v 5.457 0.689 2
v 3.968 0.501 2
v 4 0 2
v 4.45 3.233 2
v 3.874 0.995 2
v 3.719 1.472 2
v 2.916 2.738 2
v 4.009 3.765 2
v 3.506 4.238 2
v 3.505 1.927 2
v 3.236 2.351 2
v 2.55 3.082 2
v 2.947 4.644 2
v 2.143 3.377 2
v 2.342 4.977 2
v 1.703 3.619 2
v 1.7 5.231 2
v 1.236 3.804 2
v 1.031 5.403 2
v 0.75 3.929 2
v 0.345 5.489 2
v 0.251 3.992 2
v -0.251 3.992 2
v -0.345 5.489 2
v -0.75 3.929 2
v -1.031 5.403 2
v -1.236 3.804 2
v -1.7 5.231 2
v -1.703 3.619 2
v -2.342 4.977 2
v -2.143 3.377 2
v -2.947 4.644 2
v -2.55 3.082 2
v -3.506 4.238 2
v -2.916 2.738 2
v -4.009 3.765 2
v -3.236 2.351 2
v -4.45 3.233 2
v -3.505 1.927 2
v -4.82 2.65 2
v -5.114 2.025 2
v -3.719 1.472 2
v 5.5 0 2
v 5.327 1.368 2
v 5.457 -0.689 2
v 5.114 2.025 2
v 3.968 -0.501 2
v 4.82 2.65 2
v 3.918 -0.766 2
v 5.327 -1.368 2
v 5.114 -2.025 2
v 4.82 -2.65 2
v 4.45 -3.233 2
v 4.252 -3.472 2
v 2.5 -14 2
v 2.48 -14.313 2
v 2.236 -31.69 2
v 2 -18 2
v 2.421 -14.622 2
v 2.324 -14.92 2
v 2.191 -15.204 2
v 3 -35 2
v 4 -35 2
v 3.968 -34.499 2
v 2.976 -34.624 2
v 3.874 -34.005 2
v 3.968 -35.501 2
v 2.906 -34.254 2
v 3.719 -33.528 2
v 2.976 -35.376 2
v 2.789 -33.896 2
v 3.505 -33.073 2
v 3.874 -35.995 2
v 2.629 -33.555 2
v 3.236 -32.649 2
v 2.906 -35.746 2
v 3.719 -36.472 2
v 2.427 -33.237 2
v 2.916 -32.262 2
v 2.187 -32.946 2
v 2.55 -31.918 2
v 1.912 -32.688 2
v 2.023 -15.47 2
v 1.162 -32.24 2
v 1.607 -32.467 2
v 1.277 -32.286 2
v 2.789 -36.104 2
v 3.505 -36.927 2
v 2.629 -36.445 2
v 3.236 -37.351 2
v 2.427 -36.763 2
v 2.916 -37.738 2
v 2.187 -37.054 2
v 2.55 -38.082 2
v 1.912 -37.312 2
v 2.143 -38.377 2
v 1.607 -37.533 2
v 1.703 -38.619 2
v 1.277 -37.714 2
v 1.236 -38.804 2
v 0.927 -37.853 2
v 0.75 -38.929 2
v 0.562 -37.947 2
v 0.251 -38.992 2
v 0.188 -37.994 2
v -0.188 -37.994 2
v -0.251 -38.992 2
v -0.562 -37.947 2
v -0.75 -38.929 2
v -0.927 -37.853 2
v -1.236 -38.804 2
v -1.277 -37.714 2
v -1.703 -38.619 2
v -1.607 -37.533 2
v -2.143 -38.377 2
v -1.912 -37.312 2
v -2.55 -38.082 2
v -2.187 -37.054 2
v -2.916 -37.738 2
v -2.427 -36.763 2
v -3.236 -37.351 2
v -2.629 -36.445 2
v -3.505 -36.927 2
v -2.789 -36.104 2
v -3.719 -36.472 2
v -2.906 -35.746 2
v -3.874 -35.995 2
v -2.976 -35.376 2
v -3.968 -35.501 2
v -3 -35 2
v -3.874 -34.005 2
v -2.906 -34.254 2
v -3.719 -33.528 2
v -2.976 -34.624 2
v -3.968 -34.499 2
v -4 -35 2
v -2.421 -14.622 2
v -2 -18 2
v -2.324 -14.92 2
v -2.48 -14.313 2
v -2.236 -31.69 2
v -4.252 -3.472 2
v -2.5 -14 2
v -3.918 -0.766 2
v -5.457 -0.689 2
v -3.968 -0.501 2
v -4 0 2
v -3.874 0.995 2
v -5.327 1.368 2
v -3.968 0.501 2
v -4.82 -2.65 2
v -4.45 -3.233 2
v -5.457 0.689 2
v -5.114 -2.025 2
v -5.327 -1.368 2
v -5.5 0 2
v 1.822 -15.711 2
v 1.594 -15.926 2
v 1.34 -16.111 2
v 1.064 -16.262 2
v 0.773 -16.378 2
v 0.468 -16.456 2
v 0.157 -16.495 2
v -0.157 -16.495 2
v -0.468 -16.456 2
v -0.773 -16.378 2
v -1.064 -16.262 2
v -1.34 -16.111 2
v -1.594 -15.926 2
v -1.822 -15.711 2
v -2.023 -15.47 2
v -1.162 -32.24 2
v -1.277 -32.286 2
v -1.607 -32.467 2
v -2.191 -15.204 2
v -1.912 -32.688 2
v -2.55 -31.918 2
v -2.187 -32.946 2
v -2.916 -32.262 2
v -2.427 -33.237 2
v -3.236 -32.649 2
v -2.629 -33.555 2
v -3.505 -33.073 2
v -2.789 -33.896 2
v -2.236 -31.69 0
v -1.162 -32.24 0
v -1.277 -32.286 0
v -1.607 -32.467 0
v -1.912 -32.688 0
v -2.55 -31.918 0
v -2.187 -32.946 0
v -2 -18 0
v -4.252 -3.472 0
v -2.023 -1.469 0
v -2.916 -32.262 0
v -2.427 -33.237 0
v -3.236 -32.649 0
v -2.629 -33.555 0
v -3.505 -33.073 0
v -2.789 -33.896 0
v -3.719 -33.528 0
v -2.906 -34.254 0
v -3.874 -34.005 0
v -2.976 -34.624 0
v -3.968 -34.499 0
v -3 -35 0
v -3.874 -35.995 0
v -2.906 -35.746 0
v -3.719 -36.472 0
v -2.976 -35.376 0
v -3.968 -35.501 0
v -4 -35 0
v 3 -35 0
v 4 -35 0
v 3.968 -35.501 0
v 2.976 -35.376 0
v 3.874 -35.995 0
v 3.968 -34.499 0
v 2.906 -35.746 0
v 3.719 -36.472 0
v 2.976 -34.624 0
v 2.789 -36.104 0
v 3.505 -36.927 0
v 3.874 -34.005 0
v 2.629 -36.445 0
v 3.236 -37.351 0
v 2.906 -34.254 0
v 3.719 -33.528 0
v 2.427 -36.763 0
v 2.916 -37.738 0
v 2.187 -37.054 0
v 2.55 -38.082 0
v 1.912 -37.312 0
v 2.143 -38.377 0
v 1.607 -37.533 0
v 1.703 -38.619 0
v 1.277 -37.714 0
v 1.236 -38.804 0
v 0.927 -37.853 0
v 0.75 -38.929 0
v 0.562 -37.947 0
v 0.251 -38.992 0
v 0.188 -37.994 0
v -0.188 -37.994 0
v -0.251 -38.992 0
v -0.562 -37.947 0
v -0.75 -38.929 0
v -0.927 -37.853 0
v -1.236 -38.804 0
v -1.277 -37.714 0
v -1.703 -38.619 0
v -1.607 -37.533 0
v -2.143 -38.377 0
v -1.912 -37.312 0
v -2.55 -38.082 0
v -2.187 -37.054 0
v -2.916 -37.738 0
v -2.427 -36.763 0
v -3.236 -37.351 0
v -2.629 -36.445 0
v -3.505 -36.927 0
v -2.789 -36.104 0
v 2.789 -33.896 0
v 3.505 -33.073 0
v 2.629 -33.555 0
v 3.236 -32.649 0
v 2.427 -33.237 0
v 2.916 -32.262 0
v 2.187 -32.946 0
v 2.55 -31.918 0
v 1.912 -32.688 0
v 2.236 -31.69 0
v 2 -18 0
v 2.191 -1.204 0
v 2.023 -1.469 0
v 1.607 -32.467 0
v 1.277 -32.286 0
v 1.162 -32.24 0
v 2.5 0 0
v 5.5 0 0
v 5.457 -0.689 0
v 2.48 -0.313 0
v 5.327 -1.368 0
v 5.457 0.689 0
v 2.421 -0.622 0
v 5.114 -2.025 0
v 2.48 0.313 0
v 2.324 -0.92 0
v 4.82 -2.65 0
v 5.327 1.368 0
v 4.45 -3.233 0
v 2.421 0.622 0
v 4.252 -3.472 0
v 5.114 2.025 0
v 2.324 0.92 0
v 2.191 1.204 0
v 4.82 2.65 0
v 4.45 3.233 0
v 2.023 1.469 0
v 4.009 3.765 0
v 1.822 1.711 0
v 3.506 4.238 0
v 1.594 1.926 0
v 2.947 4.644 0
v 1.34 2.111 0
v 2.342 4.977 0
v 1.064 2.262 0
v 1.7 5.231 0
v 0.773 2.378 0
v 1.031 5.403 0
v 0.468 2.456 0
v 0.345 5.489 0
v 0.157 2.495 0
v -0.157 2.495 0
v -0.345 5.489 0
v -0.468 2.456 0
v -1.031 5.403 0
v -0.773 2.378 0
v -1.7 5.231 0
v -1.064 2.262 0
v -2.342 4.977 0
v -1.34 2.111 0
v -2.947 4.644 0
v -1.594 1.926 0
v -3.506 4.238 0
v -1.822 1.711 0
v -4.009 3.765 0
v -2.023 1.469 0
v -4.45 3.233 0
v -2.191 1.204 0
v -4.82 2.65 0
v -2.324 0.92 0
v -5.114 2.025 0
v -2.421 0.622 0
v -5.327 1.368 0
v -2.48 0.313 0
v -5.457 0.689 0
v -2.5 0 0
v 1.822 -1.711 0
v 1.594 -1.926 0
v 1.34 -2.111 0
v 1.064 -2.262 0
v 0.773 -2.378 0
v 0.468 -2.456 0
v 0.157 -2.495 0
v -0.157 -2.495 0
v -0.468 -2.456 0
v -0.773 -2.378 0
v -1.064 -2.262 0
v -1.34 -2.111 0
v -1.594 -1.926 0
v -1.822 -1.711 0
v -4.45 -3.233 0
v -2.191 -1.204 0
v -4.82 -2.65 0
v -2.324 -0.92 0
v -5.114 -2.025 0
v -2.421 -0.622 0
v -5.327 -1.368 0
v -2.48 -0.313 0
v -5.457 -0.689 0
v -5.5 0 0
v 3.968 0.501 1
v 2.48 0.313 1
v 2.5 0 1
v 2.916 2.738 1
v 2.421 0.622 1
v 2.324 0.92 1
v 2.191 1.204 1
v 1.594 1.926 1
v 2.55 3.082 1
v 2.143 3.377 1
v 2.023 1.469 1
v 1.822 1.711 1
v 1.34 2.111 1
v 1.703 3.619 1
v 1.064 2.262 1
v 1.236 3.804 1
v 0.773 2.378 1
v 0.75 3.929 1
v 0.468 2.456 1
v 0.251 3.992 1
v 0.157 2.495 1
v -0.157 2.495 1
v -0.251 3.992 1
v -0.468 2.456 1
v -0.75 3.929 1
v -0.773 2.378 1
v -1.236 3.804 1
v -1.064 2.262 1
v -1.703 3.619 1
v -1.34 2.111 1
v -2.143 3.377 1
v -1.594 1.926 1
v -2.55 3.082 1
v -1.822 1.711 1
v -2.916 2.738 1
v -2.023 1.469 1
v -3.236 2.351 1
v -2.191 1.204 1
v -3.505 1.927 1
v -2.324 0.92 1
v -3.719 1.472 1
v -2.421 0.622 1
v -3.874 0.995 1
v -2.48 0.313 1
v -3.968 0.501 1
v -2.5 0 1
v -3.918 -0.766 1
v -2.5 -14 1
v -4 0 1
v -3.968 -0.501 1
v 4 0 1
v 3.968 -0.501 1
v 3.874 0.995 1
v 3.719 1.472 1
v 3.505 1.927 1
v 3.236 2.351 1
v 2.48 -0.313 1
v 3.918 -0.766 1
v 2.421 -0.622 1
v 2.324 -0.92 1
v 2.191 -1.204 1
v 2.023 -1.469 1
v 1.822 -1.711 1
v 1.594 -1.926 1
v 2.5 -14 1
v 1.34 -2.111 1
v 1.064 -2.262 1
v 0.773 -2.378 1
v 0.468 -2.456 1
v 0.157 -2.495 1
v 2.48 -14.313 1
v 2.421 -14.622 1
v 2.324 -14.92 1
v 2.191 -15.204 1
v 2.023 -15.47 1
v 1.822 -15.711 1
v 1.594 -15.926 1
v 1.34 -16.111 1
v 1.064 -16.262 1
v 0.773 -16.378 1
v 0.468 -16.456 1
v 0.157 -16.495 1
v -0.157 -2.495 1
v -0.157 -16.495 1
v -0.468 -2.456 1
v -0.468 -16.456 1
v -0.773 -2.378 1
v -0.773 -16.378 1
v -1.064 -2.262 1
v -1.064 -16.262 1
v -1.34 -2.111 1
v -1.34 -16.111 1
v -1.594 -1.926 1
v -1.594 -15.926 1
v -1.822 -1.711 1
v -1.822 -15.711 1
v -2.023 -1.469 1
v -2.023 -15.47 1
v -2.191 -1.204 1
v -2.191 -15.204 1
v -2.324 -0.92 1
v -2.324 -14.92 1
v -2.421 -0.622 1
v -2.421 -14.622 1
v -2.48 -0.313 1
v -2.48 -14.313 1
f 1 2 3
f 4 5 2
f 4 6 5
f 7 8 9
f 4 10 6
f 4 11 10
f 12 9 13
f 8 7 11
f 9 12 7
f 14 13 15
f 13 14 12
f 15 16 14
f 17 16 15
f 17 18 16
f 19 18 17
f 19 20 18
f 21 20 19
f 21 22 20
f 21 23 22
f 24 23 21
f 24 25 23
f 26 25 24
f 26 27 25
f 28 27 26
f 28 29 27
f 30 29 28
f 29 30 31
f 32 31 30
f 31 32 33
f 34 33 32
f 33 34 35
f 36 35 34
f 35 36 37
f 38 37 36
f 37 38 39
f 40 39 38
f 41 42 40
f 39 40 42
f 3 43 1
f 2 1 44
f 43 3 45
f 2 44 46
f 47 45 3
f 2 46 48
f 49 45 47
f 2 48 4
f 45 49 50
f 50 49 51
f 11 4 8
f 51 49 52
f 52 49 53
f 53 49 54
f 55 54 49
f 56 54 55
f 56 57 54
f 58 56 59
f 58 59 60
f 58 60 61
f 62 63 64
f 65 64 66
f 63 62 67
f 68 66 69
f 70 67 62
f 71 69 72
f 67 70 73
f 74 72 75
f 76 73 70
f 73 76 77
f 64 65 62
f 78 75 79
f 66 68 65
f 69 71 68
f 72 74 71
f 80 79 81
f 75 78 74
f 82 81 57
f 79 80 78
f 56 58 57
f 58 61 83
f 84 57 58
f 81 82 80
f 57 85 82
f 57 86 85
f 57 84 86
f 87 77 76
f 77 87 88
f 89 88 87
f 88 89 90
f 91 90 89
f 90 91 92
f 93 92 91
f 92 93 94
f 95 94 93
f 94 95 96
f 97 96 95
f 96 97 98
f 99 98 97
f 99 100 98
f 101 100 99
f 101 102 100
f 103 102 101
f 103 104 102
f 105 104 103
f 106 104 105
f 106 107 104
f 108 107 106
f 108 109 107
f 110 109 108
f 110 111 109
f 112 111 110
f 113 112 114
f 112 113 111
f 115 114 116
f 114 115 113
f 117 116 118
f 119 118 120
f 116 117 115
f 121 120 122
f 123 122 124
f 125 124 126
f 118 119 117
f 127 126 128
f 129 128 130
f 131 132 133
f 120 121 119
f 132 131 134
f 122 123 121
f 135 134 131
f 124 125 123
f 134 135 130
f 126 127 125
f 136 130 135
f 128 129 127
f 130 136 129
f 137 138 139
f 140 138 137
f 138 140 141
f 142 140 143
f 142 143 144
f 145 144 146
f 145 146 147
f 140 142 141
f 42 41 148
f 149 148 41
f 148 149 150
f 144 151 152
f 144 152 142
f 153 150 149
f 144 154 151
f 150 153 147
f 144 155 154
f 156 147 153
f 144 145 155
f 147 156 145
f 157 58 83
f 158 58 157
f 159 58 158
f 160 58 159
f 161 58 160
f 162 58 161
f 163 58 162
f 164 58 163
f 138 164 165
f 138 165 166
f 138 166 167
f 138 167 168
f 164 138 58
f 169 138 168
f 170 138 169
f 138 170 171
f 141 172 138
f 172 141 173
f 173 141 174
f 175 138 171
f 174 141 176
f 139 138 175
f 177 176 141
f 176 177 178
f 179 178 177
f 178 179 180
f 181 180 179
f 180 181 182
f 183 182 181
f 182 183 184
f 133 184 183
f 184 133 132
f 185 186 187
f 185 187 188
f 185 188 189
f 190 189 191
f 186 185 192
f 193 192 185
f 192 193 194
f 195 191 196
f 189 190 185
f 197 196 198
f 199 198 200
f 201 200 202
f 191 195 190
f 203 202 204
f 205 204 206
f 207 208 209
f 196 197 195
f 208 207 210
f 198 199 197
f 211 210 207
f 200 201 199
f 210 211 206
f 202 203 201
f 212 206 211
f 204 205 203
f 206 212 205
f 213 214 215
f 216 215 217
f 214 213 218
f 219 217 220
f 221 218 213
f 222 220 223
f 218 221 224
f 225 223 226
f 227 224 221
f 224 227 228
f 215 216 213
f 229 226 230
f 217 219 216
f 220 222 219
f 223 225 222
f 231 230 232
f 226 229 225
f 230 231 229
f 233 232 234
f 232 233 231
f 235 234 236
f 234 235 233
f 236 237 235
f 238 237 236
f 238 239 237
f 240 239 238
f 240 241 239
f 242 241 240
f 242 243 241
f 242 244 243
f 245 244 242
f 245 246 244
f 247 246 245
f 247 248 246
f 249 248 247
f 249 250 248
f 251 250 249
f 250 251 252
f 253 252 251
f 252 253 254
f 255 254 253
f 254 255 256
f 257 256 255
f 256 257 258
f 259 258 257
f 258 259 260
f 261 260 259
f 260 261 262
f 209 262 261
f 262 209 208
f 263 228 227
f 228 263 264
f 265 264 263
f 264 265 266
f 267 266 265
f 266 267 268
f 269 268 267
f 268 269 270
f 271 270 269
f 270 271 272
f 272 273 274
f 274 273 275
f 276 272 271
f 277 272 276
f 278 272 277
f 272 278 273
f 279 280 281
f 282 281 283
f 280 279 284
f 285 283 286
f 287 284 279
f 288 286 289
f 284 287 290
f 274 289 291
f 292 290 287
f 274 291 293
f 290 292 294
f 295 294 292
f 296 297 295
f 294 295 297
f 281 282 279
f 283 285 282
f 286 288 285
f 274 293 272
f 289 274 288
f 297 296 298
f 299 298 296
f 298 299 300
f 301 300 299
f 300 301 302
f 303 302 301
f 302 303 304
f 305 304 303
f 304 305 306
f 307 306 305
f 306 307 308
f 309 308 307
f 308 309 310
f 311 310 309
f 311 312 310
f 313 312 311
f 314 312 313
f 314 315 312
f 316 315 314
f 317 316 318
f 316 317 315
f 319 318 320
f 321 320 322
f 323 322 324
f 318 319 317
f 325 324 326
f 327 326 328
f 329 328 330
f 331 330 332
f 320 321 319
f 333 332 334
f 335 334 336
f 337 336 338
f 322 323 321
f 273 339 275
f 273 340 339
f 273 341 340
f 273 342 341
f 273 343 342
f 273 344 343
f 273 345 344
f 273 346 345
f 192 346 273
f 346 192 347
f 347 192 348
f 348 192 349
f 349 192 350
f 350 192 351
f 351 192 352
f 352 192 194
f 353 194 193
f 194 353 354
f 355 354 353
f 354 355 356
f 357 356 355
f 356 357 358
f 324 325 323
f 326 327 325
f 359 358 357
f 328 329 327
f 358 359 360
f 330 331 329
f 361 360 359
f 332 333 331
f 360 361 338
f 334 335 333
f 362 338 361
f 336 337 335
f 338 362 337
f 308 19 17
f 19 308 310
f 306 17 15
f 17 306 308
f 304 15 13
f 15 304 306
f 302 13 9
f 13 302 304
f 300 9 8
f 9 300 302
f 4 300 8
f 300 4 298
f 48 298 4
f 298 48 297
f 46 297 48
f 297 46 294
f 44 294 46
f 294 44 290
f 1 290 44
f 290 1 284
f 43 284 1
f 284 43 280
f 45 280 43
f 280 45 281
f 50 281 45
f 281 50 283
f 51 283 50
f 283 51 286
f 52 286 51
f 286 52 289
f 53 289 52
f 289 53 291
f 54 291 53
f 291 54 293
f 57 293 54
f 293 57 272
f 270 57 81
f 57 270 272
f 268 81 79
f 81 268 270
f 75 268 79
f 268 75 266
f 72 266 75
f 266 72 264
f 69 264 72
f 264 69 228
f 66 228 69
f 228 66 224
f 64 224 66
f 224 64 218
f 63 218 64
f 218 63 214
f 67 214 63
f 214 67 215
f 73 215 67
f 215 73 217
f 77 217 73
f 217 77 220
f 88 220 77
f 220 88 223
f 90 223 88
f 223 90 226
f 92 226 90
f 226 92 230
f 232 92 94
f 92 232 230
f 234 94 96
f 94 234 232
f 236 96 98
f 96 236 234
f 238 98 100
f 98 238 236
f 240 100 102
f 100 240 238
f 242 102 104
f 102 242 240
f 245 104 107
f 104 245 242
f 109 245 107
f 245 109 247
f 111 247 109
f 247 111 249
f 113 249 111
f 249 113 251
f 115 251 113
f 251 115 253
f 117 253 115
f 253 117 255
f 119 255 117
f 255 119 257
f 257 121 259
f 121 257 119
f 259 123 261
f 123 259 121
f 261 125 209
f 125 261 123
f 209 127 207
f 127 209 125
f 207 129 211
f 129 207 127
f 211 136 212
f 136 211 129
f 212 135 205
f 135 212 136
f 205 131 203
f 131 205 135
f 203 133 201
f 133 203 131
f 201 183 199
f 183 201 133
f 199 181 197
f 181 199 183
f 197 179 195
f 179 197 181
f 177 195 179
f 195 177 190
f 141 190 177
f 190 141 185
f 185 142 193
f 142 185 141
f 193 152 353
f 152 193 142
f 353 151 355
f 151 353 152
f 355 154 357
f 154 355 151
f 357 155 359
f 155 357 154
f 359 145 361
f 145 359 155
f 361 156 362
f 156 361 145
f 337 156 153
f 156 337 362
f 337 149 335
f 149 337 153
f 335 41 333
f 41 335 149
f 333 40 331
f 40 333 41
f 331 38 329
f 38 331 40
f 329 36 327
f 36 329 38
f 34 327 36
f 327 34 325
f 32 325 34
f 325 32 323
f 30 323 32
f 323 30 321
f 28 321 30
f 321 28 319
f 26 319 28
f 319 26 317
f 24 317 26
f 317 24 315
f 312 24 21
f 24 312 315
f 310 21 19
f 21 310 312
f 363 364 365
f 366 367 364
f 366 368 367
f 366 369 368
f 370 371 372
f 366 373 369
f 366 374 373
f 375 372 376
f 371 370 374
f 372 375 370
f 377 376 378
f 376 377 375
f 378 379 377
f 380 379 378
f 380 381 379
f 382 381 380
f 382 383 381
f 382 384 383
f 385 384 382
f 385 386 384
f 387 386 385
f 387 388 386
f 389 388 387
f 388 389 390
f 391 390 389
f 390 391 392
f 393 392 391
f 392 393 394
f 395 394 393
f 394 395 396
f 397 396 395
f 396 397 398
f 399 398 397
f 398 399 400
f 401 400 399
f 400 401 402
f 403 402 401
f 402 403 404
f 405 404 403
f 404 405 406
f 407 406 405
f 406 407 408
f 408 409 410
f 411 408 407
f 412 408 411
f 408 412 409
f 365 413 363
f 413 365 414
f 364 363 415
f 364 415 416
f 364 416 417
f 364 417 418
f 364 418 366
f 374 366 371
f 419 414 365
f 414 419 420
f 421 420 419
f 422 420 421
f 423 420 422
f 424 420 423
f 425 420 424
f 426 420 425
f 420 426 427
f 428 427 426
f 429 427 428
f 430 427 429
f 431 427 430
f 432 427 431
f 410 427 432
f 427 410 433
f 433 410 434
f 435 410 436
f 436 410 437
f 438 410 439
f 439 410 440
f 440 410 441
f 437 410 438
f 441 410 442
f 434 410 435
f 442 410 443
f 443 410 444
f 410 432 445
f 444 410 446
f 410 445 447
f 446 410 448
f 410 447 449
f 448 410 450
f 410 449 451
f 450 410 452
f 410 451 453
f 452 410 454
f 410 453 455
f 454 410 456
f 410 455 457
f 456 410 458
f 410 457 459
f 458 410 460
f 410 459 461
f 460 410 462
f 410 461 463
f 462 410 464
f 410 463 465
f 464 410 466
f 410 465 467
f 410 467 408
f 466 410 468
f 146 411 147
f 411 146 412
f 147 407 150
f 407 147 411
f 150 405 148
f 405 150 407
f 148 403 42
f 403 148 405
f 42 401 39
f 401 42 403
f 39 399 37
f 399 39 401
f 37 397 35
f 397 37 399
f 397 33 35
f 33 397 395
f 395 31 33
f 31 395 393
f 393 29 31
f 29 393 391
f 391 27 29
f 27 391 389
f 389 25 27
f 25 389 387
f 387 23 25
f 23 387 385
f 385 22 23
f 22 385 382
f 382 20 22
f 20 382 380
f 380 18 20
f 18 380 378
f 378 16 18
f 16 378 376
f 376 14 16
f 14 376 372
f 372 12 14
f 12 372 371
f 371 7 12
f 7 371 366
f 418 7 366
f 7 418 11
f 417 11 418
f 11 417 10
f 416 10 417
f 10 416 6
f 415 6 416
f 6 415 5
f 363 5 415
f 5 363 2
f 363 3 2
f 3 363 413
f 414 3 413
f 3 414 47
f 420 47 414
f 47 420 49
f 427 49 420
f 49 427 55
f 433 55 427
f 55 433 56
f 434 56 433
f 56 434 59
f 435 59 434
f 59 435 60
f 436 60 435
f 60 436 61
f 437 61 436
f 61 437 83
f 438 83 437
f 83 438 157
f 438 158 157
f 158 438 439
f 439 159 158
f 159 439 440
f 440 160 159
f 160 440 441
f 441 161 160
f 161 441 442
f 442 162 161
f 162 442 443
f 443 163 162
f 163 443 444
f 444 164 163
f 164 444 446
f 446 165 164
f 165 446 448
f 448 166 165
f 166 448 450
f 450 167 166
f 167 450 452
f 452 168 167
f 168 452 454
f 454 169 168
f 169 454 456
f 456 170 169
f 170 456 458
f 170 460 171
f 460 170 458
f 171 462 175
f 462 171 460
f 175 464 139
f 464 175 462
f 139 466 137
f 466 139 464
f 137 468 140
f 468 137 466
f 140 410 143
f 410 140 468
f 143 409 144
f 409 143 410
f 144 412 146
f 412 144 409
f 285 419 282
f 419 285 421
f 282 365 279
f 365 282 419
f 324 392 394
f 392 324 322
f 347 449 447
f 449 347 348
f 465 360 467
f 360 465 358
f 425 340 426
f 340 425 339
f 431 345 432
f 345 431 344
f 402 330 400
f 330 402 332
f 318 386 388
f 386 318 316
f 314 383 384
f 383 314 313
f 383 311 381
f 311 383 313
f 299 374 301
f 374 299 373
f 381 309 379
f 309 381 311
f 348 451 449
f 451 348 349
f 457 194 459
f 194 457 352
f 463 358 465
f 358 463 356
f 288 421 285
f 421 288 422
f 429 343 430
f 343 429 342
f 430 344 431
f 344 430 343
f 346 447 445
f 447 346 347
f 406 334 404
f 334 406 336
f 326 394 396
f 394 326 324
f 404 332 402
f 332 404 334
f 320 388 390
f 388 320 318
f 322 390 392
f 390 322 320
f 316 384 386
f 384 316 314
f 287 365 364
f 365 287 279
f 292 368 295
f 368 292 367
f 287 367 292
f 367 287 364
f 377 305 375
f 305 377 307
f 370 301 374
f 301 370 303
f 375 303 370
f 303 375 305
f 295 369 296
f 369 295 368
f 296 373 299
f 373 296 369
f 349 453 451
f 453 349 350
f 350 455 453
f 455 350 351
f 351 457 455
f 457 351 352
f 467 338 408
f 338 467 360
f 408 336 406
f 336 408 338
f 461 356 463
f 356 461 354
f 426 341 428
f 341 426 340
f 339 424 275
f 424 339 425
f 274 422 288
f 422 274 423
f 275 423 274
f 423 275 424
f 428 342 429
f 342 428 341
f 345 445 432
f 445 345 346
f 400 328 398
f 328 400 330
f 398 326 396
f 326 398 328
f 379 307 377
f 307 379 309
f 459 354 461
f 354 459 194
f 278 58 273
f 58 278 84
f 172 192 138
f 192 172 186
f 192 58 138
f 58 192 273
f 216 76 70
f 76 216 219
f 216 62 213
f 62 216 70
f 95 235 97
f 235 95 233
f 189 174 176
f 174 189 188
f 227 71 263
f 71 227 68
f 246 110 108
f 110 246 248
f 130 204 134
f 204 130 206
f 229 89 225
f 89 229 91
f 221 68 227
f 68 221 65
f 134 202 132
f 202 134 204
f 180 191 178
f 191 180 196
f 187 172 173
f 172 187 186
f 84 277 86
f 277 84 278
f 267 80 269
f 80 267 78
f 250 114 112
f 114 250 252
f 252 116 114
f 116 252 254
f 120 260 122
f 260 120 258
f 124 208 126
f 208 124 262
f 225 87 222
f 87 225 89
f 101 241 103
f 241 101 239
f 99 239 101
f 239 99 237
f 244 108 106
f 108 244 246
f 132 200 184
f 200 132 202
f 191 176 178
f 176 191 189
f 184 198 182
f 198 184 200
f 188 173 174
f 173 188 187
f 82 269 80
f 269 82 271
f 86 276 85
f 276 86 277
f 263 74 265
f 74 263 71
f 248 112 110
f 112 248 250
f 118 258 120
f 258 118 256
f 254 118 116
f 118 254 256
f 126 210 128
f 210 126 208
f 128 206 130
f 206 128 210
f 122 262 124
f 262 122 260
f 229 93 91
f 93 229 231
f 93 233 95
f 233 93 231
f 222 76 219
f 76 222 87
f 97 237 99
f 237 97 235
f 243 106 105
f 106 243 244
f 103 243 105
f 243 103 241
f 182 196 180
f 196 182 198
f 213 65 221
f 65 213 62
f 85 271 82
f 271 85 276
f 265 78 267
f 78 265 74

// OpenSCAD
// Comment
module servoArm() {
difference() {
    linear_extrude(2)
    union() {
    circle(5.5, $fn = 50);
    translate([0, 35,0])
    circle(4, $fn = 50);
    polygon([[4.5, 0], [2, 35], [-2, 35], [-4.5, 0]]);
    }
    translate([0,0,-.5])
    linear_extrude(1.5)
    union() {
    circle(4, $fn = 50);
    translate([0, 19.5 - 3.5 - 2,0])
    circle(2.5, $fn = 50);
    polygon([[4, 0], [2.5, 14], [-2.5, 14], [-4, 0]]);
    }
    translate([0,0,-0.5])
    linear_extrude(5)
    circle(2.5, $fn = 50);

    translate([0,0,-0.5])
    linear_extrude(5)
    polygon([[2, 18], [1, 35], [-1, 35], [-2, 18]]);

    translate([0, 35,-0.5])
    linear_extrude(5)
    circle(3, $fn = 50);
}
}

rotate([180,0,0])
translate([0,0,-2])
servoArm();
